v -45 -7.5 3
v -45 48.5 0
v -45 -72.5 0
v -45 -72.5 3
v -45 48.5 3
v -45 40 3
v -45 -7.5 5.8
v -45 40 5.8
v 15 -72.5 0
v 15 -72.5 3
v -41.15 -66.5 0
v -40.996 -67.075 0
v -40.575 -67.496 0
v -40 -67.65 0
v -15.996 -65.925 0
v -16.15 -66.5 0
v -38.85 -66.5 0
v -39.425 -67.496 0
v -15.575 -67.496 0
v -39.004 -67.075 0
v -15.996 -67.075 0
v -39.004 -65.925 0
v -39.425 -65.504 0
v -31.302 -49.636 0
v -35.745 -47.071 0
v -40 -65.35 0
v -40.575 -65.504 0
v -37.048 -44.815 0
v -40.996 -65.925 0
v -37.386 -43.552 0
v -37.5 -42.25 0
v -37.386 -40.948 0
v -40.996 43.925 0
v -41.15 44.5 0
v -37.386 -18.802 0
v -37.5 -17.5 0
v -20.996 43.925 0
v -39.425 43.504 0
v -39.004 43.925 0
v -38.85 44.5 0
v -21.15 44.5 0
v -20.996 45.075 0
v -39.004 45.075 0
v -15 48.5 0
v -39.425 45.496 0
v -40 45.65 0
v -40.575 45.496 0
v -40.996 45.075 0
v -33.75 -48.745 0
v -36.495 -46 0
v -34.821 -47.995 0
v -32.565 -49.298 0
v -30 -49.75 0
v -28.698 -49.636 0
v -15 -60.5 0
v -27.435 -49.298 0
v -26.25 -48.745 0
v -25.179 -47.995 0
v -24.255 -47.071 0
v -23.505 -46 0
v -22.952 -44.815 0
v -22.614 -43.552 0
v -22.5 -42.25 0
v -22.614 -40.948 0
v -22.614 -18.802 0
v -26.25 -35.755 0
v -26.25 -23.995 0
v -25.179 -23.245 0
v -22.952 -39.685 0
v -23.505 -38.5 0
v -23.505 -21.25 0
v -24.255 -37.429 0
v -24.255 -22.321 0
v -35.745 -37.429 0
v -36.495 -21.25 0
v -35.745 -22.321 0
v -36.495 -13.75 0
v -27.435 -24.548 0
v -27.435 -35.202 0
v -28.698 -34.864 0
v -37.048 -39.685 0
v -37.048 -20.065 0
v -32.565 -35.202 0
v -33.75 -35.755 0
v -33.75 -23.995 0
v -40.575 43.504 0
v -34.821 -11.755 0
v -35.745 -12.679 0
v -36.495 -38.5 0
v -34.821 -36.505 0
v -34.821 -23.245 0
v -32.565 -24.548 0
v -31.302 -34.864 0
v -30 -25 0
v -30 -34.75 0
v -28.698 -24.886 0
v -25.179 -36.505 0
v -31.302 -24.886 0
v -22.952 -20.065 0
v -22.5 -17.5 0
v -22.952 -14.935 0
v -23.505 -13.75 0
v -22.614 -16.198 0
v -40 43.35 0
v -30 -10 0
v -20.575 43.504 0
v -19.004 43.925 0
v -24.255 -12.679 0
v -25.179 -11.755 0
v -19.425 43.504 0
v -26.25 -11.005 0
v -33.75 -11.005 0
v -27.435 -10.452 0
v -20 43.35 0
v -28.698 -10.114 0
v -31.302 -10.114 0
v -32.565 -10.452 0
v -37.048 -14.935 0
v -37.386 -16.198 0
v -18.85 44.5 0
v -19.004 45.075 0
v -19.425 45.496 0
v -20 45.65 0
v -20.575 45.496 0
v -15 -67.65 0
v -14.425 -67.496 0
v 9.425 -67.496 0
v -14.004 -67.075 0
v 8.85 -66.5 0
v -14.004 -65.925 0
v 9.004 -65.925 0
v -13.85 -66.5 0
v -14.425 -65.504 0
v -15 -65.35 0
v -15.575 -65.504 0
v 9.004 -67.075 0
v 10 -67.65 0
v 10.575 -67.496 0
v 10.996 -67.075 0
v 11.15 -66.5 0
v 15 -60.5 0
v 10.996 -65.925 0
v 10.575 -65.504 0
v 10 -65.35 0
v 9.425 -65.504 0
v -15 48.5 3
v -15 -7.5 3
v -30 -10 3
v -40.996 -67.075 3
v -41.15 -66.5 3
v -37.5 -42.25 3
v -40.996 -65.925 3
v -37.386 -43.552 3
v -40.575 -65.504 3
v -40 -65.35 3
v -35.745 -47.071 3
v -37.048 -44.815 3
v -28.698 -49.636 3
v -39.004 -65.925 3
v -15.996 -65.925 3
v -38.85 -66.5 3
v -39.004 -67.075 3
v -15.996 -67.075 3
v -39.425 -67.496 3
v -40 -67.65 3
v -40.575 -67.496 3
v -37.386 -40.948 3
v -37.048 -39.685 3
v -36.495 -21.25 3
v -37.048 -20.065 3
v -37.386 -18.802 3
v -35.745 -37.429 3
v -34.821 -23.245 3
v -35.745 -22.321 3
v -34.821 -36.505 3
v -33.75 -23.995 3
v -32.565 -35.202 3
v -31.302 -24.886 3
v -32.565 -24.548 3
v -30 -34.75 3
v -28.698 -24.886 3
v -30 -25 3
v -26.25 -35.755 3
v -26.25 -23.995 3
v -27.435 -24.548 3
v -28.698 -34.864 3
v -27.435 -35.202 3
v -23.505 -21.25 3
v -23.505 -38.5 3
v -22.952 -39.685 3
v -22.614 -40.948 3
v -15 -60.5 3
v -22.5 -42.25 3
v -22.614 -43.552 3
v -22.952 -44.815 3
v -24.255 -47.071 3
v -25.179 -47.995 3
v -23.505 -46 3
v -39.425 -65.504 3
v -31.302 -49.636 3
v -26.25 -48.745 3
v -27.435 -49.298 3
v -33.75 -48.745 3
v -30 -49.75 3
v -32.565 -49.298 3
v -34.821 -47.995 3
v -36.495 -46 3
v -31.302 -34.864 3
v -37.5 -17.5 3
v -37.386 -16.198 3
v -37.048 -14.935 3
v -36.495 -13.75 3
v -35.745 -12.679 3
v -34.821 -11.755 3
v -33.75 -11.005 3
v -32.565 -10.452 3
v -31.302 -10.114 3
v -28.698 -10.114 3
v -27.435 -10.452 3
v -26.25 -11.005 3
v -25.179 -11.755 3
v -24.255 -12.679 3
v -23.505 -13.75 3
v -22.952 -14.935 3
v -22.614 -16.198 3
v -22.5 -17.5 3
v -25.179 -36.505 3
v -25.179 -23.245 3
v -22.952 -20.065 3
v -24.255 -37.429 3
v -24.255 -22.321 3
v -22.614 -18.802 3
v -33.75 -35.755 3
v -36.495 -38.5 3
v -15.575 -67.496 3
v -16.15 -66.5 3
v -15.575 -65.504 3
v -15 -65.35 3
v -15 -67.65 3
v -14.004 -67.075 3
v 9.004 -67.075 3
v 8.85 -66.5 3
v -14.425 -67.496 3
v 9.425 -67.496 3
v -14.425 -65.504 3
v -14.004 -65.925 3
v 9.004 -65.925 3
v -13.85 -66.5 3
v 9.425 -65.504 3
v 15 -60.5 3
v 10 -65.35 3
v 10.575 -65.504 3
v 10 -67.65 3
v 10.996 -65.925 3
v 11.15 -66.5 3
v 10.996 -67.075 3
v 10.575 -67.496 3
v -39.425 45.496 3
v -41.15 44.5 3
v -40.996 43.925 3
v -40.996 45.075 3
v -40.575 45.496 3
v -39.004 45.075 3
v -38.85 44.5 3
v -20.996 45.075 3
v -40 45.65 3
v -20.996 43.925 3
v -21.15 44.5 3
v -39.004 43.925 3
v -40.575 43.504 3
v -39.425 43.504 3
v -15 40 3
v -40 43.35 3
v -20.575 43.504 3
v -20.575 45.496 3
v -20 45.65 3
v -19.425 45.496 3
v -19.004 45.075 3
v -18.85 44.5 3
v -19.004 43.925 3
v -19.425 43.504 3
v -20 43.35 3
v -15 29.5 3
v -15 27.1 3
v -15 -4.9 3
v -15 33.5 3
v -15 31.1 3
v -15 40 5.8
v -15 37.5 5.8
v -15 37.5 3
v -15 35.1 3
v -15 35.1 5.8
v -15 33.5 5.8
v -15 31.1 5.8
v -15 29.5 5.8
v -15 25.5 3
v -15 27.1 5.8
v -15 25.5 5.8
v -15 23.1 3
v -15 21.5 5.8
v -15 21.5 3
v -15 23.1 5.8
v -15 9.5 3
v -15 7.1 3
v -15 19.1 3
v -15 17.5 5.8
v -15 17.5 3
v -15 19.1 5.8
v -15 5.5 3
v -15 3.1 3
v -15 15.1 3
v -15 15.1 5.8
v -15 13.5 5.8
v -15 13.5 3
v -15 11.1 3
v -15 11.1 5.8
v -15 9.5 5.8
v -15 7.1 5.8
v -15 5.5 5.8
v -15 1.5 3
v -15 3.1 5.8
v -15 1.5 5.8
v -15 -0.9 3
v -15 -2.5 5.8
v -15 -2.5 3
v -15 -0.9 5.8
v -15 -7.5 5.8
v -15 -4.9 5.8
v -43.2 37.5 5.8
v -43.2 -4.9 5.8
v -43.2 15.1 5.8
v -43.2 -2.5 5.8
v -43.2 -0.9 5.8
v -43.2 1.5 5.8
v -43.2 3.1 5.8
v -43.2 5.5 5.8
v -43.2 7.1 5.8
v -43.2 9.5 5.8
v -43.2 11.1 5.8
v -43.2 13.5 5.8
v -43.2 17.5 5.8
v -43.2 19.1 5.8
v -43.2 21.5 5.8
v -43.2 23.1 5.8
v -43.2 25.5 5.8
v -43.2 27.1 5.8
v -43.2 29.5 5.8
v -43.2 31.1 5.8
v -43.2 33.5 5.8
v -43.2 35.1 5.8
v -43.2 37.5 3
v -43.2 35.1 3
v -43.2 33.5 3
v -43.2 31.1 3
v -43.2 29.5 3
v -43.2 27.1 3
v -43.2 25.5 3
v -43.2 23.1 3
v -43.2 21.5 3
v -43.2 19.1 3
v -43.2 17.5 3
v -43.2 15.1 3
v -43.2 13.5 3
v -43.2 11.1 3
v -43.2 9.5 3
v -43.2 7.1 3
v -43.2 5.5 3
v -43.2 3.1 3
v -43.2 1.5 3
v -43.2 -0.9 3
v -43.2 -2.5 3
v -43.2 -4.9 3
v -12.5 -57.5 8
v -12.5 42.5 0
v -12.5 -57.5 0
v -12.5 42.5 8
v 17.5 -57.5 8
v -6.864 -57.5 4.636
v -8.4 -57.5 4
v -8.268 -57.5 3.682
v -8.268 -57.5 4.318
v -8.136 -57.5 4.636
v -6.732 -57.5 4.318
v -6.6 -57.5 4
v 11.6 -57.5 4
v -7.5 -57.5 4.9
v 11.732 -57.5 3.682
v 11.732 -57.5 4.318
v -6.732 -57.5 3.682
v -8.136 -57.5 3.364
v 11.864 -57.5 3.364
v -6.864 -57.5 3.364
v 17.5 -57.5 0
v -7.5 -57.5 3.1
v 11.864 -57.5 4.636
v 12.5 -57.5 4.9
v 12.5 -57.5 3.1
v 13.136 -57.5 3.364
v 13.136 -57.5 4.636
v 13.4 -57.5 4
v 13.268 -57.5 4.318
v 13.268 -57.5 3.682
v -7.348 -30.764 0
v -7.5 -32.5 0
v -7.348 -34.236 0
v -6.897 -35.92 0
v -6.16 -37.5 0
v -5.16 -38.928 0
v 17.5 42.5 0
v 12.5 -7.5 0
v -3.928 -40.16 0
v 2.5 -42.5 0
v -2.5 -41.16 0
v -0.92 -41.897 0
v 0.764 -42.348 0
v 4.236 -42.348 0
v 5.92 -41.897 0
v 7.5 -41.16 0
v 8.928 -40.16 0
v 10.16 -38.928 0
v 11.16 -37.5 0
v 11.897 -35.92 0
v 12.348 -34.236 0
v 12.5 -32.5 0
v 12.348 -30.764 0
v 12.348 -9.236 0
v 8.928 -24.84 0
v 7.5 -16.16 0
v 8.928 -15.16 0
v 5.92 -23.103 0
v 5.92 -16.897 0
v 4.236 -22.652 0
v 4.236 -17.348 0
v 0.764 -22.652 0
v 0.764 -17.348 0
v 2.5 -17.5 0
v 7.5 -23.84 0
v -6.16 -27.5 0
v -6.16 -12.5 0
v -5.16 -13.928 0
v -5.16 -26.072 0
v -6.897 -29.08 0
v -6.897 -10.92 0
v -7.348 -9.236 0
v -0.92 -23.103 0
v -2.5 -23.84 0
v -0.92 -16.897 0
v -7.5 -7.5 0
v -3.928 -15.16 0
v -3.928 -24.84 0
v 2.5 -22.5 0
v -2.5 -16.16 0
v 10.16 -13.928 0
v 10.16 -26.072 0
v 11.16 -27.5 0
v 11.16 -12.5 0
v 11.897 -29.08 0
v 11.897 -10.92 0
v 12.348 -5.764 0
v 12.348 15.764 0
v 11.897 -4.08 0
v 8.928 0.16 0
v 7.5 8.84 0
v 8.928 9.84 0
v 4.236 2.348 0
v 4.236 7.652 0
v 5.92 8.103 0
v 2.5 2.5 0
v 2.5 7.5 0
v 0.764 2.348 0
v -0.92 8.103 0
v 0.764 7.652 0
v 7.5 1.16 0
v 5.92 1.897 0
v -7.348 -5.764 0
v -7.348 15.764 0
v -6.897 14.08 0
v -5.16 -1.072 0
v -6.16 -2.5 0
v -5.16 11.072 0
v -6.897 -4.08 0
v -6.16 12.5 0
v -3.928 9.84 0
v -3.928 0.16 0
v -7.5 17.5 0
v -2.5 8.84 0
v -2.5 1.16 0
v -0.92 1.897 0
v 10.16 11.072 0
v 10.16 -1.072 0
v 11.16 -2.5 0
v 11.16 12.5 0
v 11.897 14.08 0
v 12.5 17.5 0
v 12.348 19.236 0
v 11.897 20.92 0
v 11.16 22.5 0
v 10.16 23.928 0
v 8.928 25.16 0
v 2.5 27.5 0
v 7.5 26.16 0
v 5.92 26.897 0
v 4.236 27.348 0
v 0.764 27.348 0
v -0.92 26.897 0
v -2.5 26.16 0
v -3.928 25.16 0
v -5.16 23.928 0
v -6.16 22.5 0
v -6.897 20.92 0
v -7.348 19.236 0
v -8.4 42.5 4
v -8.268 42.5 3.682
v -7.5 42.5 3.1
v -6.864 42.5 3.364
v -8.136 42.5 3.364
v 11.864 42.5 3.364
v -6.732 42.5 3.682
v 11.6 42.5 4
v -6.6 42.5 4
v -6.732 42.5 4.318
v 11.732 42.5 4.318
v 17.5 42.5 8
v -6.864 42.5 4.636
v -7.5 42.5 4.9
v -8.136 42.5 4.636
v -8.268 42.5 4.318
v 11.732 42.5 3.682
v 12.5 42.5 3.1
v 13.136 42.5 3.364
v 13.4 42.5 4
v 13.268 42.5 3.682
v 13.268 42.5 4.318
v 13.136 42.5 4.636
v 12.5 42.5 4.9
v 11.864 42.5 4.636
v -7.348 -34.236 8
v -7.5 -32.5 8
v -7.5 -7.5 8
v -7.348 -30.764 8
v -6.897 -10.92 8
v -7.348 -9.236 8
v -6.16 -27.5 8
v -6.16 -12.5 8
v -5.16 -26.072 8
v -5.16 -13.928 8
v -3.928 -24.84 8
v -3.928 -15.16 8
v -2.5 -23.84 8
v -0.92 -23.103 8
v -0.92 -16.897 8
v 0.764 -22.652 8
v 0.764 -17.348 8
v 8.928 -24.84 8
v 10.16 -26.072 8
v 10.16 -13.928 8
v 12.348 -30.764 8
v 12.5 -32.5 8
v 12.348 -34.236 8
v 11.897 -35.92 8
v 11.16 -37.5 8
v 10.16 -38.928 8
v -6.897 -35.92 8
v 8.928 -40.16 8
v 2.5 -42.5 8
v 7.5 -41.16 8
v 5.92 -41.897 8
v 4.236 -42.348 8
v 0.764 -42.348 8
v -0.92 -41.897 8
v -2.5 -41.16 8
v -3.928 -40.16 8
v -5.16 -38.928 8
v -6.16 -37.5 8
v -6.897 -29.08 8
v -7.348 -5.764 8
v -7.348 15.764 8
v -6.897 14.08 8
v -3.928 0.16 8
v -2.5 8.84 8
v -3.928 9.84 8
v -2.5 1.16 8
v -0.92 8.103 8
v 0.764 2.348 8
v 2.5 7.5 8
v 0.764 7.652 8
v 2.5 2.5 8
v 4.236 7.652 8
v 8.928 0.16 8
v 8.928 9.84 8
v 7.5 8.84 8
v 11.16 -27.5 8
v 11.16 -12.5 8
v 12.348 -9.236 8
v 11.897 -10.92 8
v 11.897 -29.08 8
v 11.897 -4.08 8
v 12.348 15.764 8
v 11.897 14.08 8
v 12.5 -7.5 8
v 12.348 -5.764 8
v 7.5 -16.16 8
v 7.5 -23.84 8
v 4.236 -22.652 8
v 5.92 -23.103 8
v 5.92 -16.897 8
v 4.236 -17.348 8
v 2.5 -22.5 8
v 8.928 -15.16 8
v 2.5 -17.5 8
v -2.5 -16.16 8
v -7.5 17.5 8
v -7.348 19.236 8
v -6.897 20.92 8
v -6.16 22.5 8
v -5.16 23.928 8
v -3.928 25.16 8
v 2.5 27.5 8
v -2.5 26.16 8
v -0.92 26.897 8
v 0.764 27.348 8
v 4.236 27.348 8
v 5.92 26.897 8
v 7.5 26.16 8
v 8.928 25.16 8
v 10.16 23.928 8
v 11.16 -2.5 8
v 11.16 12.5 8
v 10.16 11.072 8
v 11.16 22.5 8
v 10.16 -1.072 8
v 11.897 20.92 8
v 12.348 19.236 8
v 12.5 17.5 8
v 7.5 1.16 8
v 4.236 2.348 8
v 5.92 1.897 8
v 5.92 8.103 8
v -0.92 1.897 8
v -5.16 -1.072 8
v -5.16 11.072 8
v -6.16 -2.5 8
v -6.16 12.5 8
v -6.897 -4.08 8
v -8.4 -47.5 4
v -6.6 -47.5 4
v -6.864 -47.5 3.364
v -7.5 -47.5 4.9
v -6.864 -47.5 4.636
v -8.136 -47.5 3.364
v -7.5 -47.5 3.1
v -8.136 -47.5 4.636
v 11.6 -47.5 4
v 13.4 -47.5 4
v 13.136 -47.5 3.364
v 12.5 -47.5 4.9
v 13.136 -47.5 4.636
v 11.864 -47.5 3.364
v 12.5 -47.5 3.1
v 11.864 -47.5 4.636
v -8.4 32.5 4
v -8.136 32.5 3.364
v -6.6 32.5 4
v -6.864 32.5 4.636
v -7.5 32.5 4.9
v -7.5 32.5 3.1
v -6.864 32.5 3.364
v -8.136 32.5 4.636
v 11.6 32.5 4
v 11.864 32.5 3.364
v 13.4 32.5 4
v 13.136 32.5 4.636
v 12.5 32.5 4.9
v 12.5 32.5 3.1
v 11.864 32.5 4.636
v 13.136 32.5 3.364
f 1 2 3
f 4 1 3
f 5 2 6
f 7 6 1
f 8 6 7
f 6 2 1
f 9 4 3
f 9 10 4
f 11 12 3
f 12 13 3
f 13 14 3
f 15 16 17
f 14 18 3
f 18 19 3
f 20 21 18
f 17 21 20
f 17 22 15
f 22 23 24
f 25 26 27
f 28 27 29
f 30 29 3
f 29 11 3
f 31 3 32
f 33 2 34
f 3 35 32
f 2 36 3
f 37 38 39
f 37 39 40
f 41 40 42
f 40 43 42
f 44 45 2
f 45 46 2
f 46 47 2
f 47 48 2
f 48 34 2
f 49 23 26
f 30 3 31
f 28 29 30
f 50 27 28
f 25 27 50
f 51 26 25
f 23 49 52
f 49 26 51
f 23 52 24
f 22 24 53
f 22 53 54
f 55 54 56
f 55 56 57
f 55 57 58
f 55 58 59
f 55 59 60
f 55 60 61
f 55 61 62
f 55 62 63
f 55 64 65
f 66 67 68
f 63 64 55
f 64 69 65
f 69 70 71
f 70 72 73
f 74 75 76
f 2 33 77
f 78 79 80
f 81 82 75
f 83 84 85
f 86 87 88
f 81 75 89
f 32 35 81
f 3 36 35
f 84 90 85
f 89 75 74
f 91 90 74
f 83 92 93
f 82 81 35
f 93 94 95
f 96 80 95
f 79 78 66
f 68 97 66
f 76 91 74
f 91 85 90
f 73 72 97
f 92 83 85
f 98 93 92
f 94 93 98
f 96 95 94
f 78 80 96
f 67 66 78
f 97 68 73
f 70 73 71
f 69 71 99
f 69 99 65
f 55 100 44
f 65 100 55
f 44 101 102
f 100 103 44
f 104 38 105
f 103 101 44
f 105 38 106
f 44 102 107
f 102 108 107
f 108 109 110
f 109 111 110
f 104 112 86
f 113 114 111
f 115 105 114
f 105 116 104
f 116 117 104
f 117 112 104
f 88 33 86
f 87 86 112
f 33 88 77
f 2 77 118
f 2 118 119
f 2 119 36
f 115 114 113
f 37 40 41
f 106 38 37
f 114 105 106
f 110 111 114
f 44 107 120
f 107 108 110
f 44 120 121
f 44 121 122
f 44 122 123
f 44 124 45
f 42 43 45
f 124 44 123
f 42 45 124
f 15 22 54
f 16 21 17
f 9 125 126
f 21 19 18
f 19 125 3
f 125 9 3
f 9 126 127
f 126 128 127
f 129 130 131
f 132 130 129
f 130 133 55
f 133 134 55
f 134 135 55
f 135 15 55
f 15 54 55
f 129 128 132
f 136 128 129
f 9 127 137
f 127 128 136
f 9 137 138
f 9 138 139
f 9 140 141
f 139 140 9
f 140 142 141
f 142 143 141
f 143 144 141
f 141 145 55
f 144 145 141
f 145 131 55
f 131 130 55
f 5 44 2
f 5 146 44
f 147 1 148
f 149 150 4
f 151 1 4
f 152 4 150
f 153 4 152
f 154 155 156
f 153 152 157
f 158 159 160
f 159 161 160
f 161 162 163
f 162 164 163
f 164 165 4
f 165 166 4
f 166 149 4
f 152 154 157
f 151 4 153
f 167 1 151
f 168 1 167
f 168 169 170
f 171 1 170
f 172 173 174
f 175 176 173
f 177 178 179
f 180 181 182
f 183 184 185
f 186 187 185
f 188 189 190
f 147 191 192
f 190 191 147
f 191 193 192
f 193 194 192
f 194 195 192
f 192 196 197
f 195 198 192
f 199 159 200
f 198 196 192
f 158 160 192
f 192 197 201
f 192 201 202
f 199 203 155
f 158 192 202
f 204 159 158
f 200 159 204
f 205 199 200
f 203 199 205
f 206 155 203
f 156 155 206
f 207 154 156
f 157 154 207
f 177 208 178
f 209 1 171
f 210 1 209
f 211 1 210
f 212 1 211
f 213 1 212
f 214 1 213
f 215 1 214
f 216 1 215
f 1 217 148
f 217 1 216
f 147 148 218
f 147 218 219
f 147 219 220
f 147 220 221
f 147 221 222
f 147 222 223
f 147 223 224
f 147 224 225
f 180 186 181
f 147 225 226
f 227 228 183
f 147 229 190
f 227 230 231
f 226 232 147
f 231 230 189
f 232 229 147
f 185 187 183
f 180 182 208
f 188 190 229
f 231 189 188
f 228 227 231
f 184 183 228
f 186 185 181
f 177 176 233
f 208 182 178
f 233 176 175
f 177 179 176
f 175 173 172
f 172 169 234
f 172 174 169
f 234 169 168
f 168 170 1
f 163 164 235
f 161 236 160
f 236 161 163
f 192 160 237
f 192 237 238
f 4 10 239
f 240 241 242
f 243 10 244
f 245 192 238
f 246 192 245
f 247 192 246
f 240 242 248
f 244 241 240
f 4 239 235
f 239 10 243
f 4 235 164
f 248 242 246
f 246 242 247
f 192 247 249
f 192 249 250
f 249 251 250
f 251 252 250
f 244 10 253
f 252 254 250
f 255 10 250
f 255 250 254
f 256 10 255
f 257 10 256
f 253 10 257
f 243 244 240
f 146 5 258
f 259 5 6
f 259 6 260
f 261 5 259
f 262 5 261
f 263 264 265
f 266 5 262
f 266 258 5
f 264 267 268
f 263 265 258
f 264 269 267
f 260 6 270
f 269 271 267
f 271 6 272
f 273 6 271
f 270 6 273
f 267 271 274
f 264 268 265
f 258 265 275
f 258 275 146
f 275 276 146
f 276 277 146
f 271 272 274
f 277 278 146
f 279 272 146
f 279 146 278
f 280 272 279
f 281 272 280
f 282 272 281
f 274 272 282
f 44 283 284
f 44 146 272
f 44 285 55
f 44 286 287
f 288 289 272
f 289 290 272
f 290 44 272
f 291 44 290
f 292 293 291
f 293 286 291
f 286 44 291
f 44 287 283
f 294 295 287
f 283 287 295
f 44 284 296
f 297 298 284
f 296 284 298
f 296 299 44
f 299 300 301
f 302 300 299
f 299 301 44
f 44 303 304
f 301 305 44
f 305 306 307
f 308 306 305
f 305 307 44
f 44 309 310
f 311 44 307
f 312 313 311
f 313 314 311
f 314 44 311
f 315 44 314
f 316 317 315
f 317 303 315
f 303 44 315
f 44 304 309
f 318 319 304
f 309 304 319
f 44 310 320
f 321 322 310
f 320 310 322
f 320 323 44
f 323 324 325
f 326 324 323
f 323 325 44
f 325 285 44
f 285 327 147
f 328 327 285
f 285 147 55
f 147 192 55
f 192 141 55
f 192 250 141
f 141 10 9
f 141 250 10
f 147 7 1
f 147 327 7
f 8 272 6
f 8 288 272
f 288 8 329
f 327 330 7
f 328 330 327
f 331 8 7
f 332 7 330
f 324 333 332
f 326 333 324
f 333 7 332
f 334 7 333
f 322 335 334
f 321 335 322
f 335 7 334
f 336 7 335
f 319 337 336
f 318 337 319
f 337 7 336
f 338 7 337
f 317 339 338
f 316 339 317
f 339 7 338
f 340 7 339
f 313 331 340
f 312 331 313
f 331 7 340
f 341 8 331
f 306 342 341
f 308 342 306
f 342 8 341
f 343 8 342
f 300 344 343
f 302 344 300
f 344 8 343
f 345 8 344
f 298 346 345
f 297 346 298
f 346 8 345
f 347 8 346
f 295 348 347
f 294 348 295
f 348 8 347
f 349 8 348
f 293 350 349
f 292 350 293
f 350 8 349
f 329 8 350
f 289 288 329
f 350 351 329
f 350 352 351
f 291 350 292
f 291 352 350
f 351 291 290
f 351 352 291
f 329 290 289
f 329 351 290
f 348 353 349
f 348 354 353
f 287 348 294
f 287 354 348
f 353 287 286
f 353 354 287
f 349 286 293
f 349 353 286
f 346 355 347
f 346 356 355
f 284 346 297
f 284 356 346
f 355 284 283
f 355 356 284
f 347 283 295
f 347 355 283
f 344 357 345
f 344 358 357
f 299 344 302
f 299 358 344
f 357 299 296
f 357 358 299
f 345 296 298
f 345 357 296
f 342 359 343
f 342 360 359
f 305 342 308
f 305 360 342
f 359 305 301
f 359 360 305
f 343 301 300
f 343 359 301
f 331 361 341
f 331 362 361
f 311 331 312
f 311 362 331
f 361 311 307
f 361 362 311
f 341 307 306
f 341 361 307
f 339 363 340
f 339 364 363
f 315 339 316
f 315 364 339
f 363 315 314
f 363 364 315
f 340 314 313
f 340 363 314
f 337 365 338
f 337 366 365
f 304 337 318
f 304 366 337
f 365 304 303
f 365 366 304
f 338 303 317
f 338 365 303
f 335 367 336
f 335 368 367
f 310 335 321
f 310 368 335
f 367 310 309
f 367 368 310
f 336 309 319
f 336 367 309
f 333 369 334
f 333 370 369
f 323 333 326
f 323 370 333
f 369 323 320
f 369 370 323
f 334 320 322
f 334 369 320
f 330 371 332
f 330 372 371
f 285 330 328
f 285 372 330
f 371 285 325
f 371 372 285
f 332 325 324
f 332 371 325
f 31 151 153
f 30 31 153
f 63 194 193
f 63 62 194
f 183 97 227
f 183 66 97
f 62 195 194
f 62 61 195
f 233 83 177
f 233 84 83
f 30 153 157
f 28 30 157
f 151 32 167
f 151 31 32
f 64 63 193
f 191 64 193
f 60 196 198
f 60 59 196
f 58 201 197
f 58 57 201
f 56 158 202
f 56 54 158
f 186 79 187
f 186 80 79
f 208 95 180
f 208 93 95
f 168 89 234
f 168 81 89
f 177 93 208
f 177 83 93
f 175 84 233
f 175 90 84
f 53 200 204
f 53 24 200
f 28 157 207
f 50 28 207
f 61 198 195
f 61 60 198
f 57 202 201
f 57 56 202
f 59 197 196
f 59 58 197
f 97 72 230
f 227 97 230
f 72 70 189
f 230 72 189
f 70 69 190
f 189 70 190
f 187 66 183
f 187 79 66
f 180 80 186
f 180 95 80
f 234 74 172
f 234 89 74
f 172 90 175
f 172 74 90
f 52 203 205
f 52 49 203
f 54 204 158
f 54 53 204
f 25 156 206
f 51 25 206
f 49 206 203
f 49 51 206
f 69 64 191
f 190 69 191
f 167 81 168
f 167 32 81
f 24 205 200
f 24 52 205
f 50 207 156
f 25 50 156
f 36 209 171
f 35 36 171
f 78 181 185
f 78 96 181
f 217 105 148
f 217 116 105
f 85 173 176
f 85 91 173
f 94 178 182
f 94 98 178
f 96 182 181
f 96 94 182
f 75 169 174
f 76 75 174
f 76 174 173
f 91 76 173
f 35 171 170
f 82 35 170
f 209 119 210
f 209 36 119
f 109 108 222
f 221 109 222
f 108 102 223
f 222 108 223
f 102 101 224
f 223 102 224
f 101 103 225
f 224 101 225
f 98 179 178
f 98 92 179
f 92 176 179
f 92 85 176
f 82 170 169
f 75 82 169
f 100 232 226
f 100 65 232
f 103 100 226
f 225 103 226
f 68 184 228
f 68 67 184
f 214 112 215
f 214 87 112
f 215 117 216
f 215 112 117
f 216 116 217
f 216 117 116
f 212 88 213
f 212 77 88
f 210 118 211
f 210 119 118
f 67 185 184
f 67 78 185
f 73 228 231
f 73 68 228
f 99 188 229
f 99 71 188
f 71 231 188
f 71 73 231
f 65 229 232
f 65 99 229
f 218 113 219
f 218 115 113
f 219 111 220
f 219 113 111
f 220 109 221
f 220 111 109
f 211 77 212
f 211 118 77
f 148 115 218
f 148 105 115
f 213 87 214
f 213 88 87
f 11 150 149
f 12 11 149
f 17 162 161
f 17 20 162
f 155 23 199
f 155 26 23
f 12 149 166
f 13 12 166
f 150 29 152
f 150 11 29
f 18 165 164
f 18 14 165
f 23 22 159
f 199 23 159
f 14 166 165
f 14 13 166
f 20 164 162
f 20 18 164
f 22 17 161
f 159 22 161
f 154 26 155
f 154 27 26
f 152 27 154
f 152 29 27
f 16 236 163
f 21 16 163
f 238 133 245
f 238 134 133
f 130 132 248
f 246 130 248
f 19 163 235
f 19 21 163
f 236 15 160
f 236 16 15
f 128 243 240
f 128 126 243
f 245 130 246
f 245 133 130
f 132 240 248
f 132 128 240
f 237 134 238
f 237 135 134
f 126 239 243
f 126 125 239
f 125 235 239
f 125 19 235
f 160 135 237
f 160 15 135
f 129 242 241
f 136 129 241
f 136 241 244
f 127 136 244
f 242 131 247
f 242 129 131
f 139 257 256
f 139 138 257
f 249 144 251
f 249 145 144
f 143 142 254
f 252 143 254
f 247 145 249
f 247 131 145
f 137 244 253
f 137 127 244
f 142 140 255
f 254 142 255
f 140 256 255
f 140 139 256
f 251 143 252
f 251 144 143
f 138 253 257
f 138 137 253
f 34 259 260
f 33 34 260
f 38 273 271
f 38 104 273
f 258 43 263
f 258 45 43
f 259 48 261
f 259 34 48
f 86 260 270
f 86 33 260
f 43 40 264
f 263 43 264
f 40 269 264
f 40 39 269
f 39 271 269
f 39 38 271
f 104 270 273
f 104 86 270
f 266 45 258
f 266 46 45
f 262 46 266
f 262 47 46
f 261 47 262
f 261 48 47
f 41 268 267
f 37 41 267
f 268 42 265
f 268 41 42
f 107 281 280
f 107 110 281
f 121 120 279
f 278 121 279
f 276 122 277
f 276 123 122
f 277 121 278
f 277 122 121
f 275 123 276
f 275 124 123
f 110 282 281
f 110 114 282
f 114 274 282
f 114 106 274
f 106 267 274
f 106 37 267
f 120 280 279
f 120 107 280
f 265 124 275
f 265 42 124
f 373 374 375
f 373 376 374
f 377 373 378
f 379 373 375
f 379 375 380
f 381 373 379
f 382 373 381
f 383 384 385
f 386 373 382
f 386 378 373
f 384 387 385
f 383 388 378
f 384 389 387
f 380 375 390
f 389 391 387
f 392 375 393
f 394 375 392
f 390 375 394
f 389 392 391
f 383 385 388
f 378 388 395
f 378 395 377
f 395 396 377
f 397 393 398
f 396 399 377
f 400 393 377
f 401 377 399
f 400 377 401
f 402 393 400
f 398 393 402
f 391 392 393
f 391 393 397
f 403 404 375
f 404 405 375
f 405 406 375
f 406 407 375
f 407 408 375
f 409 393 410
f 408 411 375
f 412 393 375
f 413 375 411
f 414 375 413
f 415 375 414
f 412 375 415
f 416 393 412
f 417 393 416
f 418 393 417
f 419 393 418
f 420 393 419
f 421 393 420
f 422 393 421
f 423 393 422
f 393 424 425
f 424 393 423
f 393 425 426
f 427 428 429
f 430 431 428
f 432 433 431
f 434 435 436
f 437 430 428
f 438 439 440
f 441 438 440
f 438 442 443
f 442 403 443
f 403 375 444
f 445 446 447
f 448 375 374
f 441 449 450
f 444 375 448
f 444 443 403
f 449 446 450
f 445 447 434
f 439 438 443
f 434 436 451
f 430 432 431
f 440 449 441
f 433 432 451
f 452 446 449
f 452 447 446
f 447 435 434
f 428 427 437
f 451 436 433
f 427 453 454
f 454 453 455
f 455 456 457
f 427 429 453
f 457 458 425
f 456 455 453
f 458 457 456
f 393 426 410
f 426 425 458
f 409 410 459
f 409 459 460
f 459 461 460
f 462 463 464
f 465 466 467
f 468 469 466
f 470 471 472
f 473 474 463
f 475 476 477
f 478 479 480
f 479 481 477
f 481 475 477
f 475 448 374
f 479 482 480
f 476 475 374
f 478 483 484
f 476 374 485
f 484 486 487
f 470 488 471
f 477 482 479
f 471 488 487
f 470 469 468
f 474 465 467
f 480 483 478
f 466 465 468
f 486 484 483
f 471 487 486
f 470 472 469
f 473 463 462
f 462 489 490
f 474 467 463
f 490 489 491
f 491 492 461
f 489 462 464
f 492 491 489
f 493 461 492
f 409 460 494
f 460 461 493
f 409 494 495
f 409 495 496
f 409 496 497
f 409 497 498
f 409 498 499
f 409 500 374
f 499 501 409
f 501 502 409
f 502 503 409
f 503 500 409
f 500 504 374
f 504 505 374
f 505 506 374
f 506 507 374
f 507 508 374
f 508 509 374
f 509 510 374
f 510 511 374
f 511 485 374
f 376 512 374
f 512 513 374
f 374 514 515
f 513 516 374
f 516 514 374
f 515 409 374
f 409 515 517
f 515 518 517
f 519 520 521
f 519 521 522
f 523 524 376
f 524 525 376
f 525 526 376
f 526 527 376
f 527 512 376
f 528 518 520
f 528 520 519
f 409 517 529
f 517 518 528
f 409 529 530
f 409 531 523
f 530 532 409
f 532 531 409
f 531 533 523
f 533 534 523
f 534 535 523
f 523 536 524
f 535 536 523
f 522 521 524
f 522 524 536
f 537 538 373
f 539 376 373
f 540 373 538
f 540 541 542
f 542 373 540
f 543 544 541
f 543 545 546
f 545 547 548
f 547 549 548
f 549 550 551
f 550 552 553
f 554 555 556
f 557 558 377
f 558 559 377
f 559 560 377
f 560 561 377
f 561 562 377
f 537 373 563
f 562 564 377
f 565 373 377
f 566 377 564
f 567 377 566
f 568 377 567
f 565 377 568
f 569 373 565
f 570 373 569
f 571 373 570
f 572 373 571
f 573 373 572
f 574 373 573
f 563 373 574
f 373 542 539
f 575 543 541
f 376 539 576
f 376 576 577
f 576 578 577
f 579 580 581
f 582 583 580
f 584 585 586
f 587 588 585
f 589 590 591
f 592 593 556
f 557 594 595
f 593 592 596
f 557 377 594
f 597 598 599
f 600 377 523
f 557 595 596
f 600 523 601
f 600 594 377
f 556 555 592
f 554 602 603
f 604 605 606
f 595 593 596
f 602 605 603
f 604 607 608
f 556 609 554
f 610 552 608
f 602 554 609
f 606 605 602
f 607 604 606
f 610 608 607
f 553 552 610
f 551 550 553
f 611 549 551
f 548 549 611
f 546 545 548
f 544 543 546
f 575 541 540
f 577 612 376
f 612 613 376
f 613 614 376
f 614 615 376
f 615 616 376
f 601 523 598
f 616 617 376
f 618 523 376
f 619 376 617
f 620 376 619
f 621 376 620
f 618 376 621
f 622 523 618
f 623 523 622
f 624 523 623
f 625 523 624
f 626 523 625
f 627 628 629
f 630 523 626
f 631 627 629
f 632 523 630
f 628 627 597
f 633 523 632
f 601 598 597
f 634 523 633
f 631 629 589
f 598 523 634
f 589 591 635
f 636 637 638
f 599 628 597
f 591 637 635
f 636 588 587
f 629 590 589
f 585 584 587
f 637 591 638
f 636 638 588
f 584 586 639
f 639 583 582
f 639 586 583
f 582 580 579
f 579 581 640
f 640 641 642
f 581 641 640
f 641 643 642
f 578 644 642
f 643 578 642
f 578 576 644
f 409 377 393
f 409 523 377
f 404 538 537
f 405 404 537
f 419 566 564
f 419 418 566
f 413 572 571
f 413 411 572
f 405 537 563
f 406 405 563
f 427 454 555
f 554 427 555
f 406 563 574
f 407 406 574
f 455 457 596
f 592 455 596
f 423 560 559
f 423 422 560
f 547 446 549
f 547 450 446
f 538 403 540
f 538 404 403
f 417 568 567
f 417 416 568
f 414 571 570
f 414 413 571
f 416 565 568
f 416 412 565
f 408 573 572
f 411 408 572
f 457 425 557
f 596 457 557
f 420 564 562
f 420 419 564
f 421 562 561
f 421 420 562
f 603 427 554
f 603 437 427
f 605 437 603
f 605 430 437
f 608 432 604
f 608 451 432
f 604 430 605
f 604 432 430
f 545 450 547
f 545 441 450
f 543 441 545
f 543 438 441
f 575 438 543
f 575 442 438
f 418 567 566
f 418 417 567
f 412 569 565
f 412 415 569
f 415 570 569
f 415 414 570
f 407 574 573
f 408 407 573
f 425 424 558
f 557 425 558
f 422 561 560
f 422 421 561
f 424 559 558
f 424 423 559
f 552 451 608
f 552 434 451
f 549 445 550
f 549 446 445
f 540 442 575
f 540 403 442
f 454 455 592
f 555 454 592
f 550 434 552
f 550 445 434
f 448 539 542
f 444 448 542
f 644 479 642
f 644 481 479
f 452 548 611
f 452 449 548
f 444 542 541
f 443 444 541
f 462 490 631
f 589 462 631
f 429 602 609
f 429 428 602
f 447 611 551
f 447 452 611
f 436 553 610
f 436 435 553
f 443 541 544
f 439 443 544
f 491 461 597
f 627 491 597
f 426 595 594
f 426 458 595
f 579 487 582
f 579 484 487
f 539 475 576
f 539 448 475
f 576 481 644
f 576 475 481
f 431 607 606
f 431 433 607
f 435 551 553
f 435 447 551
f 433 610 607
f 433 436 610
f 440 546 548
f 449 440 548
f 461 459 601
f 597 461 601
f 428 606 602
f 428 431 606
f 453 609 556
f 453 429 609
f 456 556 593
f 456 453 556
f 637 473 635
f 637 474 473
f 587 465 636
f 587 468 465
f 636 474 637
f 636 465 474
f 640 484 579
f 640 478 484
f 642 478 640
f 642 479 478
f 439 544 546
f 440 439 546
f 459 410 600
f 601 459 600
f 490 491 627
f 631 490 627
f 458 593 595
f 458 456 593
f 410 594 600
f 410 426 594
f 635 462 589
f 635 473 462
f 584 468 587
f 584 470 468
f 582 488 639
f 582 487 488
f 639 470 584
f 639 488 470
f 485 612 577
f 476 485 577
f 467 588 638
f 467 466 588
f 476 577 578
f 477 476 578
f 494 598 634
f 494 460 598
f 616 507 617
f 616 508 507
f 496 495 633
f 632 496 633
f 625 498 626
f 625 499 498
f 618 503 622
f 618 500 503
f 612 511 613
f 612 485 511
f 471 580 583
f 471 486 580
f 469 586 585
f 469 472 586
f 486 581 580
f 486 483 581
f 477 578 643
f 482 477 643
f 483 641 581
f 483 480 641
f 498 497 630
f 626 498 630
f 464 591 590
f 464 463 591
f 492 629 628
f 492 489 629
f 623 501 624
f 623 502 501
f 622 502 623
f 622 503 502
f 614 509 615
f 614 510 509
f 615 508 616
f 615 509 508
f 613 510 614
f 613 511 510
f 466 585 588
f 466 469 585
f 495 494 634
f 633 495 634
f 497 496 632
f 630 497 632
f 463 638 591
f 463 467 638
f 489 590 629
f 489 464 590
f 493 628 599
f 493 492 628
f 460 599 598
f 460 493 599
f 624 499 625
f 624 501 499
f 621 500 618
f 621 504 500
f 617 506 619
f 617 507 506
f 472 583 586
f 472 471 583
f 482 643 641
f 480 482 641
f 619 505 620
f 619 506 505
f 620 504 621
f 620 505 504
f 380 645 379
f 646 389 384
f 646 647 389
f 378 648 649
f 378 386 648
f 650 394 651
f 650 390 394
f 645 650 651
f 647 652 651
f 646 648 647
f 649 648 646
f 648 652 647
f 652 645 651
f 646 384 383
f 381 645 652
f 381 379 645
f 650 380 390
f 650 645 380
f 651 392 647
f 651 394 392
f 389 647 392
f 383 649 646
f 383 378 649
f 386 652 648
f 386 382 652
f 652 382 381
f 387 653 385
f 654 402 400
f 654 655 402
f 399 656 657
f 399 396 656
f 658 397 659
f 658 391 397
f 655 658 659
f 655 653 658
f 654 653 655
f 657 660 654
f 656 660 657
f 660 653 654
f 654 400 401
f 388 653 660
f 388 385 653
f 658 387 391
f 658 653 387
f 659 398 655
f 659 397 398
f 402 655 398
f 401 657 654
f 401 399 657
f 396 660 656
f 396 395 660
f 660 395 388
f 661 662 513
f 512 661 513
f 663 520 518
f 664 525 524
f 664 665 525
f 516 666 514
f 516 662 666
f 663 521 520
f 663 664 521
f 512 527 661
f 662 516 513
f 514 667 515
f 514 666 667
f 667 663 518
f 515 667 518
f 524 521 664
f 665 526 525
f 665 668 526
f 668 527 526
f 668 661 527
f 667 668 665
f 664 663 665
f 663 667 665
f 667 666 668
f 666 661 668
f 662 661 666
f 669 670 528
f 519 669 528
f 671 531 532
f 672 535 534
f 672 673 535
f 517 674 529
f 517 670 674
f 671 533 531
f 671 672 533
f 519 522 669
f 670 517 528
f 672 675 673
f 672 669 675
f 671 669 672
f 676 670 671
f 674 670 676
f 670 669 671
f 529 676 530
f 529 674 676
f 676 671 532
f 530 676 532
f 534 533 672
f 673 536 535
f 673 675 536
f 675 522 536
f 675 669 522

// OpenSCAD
// Desktop ball bearing spool holder
// Written by Joe Cabana  3/1/2014
// Added bigger spool sizes 4/8/2014
// You are free to use and/or modify this software for non-comercial
// uses as long as you retain this message. Thanks.

// Print at .25 layer height, 25% infill, 2 extra shells

DoArms = 1;  // Set to non-zero to draw the outer bracket support arms, 0 to draw the rest of the stuff

Show = 0;  // Set to non-zero to show bearings

// Spool dimensions
SpoolCnt = 11;  // Number of spool sizes
SpoolWid = [85,81,77,73,69,65,61,57,53,49,45];  // Width of filament spool the first one must be the biggest, and the last one the smallest.
SpoolSpace = 1;  // Extra space on each side of the spool

// Mounting Latch dimensions
LatchWid = 45;  // Width of latching section

// Bearing mount dimensions
SplShdDia = 30;  // Diameter of spool guiding shoulder
SplShdThk = 2;  // Thickness of spool guiding shoulder
BearShdDia = 11;  // Diameter of bearing mount shoulder
BearShdThk = .25;  // Thickness of bearing mount shoulder
BearInDia = 8;  // Diameter of bearing center hole
BearOutDia = 22;  // Outer diameter of bearing
BearThk = 7;  // Thickness of the bearing
BearWashThk = 2.5;  // Thickness of bearing mounting washers

// Bracket dimensions
LatchOff = 0;  // Offset into bracket of latch slot
InBrkThk = 12;  // Thickness of bracket on back of replicator
OutBrkThk = 8;  // Thickness of bracket on outside
BrkWid = 100; // Width of bracket on back of replicator
InBrkHgt = 90;  // Height of bracket on back or replicator
OutBrkHgt = 30;  // Height of outside bracket
SlotDepth = 3; // Depth of slots to hold outer bracket
SlotWidth = 2; // Width of slots to hold outer bracket
SlotClear = .2;  // Clearance for outer bracket slots
ArmWid = (2 * SplShdThk) + (2 * OutBrkThk) + InBrkThk + SpoolWid[0] + SpoolSpace + SlotWidth + 1;  // Width of outer bracket arms
ArmThk = 3;  // Thickness of outer bracket arms

// Screw hole sizes
ScrewDia = 1.8; // Diameter of screw hole
ScrewClear = 2.3; // Diameter of screw clearance hole


	// Outer bracket mounting arms
	translate([-OutBrkHgt*1.5,-(ArmWid/2+InBrkThk),0])
		Arm(0);
	//translate([OutBrkHgt/2+5,ArmWid/2-InBrkThk,ArmThk])
	//	rotate([180,0,0])
	//		Arm(1);

	// End plate
	translate([-12.5,-(ArmWid/2-3),0])
		EndPlate();




// Routine to draw the outer bracket mounting arm
module Arm(Invert = 0)
{
	SlotBlockWid = SpoolWid[0]-SpoolWid[SpoolCnt-1]+(3*SlotWidth) + 1.5;  // Width of block to hold slots

	difference()
	{
		// Arm
		union()
		{
			cube([OutBrkHgt,ArmWid,ArmThk]);  // Arm
			cube([OutBrkHgt*2,InBrkThk,ArmThk]);  // Extra bracing
			if (Invert)
				translate([0,ArmWid-SlotBlockWid-OutBrkThk-.5,-(SlotDepth-SlotClear)])
					cube([OutBrkHgt,SlotBlockWid,ArmThk+SlotDepth-SlotClear]);  // Outer bracket support
			else
				translate([0,ArmWid-SlotBlockWid-OutBrkThk-.5,0])
					cube([OutBrkHgt,SlotBlockWid,ArmThk+SlotDepth-SlotClear]);  // Outer bracket support
		}

		// Outer bracket slots
		for (cnt = [0 : (SpoolCnt-1)])
			if (Invert)
				translate([SlotWidth-SlotClear,(2*SplShdThk)+OutBrkThk+InBrkThk+SpoolWid[cnt]+SpoolSpace-(SlotWidth+(2*SlotClear)),-(ArmThk+1)])
					cube([OutBrkHgt,SlotWidth+(2*SlotClear),SlotDepth+1]);  // Outer bracket support
			else
				translate([SlotWidth-SlotClear,(2*SplShdThk)+OutBrkThk+InBrkThk+SpoolWid[cnt]+SpoolSpace-(SlotWidth+(2*SlotClear)),ArmThk])
					cube([OutBrkHgt,SlotWidth+(2*SlotClear),SlotDepth+1]);  // Outer bracket support

		// Holes
		translate([OutBrkHgt/2,ArmWid/4,-1])
			cylinder(ArmThk+2,OutBrkHgt/4,OutBrkHgt/4,$fn=36);
		translate([OutBrkHgt/2,ArmWid/2.2,-1])
			cylinder(ArmThk+2,OutBrkHgt/4,OutBrkHgt/4,$fn=36);
//		translate([OutBrkHgt/2,ArmWid/1.5,-1])
//			cylinder(ArmThk+2,OutBrkHgt/4,OutBrkHgt/4,$fn=36);

		// Screw holes
		translate([5,InBrkThk/2,-1])
			cylinder(ArmThk+2,ScrewClear/2,ScrewClear/2,$fn=12);
		translate([OutBrkHgt,InBrkThk/2,-1])
			cylinder(ArmThk+2,ScrewClear/2,ScrewClear/2,$fn=12);
		translate([2*OutBrkHgt-5,InBrkThk/2,-1])
			cylinder(ArmThk+2,ScrewClear/2,ScrewClear/2,$fn=12);
		translate([5,ArmWid-OutBrkThk/2,-1])
			cylinder(ArmThk+2,ScrewClear/2,ScrewClear/2,$fn=12);
		translate([OutBrkHgt-5,ArmWid-OutBrkThk/2,-1])
			cylinder(ArmThk+2,ScrewClear/2,ScrewClear/2,$fn=12);
	}
}

// Routine to draw the outside bracket
module OutBracket(Show = 0)
{
	difference()
	{
		union()
		{
			difference()
			{
				// Outside plate
				cube([OutBrkHgt,BrkWid,OutBrkThk]);
		
				// Hole in center
				translate([5,SplShdDia,-1])
					cube([OutBrkHgt-10,BrkWid-2*SplShdDia,OutBrkThk+2]);
			}
				// Bearing mounts
			translate([OutBrkHgt-SplShdDia/2,SplShdDia/2,0])
				BearingMnt(Show,OutBrkThk);
			translate([OutBrkHgt-SplShdDia/2,BrkWid-SplShdDia/2,0])
				BearingMnt(Show,OutBrkThk);
		}
		
		// Cut down for slots
		translate([-1,0,SlotWidth])
			cube([OutBrkHgt+2,SlotDepth,OutBrkThk+SplShdThk]);
		translate([-1,BrkWid-SlotDepth,SlotWidth])
			cube([OutBrkHgt+2,SlotDepth,OutBrkThk+SplShdThk]);
		translate([-1,BrkWid-SlotDepth,-1])
			cube([SlotWidth+1,SlotDepth,OutBrkThk+SplShdThk+2]);
		translate([-1,0,-1])
			cube([SlotWidth+1,SlotDepth,OutBrkThk+SplShdThk+2]);

		// Trim for clearance
		translate([-1,SlotClear-SlotDepth,-1])
			cube([OutBrkHgt+1,SlotDepth,OutBrkThk+SplShdThk+2]);
		translate([-1,BrkWid-SlotClear,-1])
			cube([OutBrkHgt+1,SlotDepth,OutBrkThk+SplShdThk+2]);
	}
}

// Routine to draw the end plate
module EndPlate()
{
	difference()
	{
		// Outside plate
		cube([OutBrkHgt,BrkWid,OutBrkThk]);

		// Holes
		translate([OutBrkHgt/2,BrkWid/4,-1])
			cylinder(OutBrkThk+2,OutBrkHgt/3,OutBrkHgt/3,$fn=36);
		translate([OutBrkHgt/2,BrkWid/2,-1])
			cylinder(OutBrkThk+2,OutBrkHgt/3,OutBrkHgt/3,$fn=36);
		translate([OutBrkHgt/2,BrkWid-BrkWid/4,-1])
			cylinder(OutBrkThk+2,OutBrkHgt/3,OutBrkHgt/3,$fn=36);

		// Screw holes
		translate([5,0,OutBrkThk/2])
			rotate([90,0,0])
				cylinder(20,ScrewDia/2,ScrewDia/2,true,$fn=8);
		translate([OutBrkHgt-5,0,OutBrkThk/2])
			rotate([90,0,0])
				cylinder(20,ScrewDia/2,ScrewDia/2,true,$fn=8);
		translate([5,BrkWid,OutBrkThk/2])
			rotate([90,0,0])
				cylinder(20,ScrewDia/2,ScrewDia/2,true,$fn=8);
		translate([OutBrkHgt-5,BrkWid,OutBrkThk/2])
			rotate([90,0,0])
				cylinder(20,ScrewDia/2,ScrewDia/2,true,$fn=8);
	}
}

// Routine to draw the bearing washer
module BearWash()
{
	difference()
	{
		// Washer
		cylinder(BearWashThk,BearShdDia/2,BearShdDia/2,$fn=36);
		// Hole for screw
		cylinder(BearWashThk*3,ScrewClear/2,ScrewClear/2,true,$fn=12);
	}
}

// Routine to draw back mounting bracket
module BackBracket()
{
	difference()
	{
		// Back plate
		cube([InBrkHgt,BrkWid,InBrkThk]);


		// Chop top corners
		rotate([0,0,45])
			cube([BrkWid/3,BrkWid/3,InBrkHgt*3],true);
		translate([0,BrkWid,0])
			rotate([0,0,45])
				cube([BrkWid/3,BrkWid/3,InBrkHgt*3],true);

		// Hole in center
		translate([LatchOff+10,5,-1])
			difference()
			{
				cube([InBrkHgt-(LatchOff+10)-SplShdDia/4,BrkWid-10,InBrkThk+2]);
				rotate([0,0,45])
					cube([LatchWid/2,LatchWid/2,InBrkHgt*3],true);
				translate([0,BrkWid-10,0])
					rotate([0,0,45])
						cube([LatchWid/2,LatchWid/2,InBrkHgt*3],true);
			}

		// Screw holes
		translate([InBrkHgt-5,0,InBrkThk/2])
			rotate([90,0,0])
				cylinder(20,ScrewDia/2,ScrewDia/2,true,$fn=8);
		translate([InBrkHgt-OutBrkHgt,0,InBrkThk/2])
			rotate([90,0,0])
				cylinder(20,ScrewDia/2,ScrewDia/2,true,$fn=8);
		translate([InBrkHgt-(2*OutBrkHgt-5),0,InBrkThk/2])
			rotate([90,0,0])
				cylinder(20,ScrewDia/2,ScrewDia/2,true,$fn=8);
		translate([InBrkHgt-5,BrkWid,InBrkThk/2])
			rotate([90,0,0])
				cylinder(20,ScrewDia/2,ScrewDia/2,true,$fn=8);
		translate([InBrkHgt-OutBrkHgt,BrkWid,InBrkThk/2])
			rotate([90,0,0])
				cylinder(20,ScrewDia/2,ScrewDia/2,true,$fn=8);
		translate([InBrkHgt-(2*OutBrkHgt-5),BrkWid,InBrkThk/2])
			rotate([90,0,0])
				cylinder(20,ScrewDia/2,ScrewDia/2,true,$fn=8);
	}
}

// Routine to draw he bearing mount
module BearingMnt(Show = 0,BrkThk = 1)
{
	difference()
	{
		union()
		{
			// Shoulder to keep spool off of bracket
			cylinder(BrkThk+SplShdThk,SplShdDia/2,SplShdDia/2,$fn=36);
			// Shoulder to keep bearing from rubbing
			cylinder(BrkThk+BearShdThk+SplShdThk,BearShdDia/2,BearShdDia/2,$fn=36);
			// Mounting shaft
			cylinder(BrkThk+BearThk+BearShdThk+SplShdThk,BearInDia/2,BearInDia/2,$fn=12);
		}

		// Screw hole
		cylinder(50,ScrewDia/2,ScrewDia/2,true,$fn8);
	}

	if (Show)  // Show the bearing if needed
	{
		translate([0,0,BearShdThk+SplShdThk])
			color("Blue",.5)
				difference()
				{
					// Bearing minus the hole
					cylinder(BrkThk+BearThk,BearOutDia/2,BearOutDia/2,$fn=36);
					translate([0,0,-1])
						cylinder(BearThk+2,BearInDia/2,BearInDia/2,$fn=36);
				}
	}
}
